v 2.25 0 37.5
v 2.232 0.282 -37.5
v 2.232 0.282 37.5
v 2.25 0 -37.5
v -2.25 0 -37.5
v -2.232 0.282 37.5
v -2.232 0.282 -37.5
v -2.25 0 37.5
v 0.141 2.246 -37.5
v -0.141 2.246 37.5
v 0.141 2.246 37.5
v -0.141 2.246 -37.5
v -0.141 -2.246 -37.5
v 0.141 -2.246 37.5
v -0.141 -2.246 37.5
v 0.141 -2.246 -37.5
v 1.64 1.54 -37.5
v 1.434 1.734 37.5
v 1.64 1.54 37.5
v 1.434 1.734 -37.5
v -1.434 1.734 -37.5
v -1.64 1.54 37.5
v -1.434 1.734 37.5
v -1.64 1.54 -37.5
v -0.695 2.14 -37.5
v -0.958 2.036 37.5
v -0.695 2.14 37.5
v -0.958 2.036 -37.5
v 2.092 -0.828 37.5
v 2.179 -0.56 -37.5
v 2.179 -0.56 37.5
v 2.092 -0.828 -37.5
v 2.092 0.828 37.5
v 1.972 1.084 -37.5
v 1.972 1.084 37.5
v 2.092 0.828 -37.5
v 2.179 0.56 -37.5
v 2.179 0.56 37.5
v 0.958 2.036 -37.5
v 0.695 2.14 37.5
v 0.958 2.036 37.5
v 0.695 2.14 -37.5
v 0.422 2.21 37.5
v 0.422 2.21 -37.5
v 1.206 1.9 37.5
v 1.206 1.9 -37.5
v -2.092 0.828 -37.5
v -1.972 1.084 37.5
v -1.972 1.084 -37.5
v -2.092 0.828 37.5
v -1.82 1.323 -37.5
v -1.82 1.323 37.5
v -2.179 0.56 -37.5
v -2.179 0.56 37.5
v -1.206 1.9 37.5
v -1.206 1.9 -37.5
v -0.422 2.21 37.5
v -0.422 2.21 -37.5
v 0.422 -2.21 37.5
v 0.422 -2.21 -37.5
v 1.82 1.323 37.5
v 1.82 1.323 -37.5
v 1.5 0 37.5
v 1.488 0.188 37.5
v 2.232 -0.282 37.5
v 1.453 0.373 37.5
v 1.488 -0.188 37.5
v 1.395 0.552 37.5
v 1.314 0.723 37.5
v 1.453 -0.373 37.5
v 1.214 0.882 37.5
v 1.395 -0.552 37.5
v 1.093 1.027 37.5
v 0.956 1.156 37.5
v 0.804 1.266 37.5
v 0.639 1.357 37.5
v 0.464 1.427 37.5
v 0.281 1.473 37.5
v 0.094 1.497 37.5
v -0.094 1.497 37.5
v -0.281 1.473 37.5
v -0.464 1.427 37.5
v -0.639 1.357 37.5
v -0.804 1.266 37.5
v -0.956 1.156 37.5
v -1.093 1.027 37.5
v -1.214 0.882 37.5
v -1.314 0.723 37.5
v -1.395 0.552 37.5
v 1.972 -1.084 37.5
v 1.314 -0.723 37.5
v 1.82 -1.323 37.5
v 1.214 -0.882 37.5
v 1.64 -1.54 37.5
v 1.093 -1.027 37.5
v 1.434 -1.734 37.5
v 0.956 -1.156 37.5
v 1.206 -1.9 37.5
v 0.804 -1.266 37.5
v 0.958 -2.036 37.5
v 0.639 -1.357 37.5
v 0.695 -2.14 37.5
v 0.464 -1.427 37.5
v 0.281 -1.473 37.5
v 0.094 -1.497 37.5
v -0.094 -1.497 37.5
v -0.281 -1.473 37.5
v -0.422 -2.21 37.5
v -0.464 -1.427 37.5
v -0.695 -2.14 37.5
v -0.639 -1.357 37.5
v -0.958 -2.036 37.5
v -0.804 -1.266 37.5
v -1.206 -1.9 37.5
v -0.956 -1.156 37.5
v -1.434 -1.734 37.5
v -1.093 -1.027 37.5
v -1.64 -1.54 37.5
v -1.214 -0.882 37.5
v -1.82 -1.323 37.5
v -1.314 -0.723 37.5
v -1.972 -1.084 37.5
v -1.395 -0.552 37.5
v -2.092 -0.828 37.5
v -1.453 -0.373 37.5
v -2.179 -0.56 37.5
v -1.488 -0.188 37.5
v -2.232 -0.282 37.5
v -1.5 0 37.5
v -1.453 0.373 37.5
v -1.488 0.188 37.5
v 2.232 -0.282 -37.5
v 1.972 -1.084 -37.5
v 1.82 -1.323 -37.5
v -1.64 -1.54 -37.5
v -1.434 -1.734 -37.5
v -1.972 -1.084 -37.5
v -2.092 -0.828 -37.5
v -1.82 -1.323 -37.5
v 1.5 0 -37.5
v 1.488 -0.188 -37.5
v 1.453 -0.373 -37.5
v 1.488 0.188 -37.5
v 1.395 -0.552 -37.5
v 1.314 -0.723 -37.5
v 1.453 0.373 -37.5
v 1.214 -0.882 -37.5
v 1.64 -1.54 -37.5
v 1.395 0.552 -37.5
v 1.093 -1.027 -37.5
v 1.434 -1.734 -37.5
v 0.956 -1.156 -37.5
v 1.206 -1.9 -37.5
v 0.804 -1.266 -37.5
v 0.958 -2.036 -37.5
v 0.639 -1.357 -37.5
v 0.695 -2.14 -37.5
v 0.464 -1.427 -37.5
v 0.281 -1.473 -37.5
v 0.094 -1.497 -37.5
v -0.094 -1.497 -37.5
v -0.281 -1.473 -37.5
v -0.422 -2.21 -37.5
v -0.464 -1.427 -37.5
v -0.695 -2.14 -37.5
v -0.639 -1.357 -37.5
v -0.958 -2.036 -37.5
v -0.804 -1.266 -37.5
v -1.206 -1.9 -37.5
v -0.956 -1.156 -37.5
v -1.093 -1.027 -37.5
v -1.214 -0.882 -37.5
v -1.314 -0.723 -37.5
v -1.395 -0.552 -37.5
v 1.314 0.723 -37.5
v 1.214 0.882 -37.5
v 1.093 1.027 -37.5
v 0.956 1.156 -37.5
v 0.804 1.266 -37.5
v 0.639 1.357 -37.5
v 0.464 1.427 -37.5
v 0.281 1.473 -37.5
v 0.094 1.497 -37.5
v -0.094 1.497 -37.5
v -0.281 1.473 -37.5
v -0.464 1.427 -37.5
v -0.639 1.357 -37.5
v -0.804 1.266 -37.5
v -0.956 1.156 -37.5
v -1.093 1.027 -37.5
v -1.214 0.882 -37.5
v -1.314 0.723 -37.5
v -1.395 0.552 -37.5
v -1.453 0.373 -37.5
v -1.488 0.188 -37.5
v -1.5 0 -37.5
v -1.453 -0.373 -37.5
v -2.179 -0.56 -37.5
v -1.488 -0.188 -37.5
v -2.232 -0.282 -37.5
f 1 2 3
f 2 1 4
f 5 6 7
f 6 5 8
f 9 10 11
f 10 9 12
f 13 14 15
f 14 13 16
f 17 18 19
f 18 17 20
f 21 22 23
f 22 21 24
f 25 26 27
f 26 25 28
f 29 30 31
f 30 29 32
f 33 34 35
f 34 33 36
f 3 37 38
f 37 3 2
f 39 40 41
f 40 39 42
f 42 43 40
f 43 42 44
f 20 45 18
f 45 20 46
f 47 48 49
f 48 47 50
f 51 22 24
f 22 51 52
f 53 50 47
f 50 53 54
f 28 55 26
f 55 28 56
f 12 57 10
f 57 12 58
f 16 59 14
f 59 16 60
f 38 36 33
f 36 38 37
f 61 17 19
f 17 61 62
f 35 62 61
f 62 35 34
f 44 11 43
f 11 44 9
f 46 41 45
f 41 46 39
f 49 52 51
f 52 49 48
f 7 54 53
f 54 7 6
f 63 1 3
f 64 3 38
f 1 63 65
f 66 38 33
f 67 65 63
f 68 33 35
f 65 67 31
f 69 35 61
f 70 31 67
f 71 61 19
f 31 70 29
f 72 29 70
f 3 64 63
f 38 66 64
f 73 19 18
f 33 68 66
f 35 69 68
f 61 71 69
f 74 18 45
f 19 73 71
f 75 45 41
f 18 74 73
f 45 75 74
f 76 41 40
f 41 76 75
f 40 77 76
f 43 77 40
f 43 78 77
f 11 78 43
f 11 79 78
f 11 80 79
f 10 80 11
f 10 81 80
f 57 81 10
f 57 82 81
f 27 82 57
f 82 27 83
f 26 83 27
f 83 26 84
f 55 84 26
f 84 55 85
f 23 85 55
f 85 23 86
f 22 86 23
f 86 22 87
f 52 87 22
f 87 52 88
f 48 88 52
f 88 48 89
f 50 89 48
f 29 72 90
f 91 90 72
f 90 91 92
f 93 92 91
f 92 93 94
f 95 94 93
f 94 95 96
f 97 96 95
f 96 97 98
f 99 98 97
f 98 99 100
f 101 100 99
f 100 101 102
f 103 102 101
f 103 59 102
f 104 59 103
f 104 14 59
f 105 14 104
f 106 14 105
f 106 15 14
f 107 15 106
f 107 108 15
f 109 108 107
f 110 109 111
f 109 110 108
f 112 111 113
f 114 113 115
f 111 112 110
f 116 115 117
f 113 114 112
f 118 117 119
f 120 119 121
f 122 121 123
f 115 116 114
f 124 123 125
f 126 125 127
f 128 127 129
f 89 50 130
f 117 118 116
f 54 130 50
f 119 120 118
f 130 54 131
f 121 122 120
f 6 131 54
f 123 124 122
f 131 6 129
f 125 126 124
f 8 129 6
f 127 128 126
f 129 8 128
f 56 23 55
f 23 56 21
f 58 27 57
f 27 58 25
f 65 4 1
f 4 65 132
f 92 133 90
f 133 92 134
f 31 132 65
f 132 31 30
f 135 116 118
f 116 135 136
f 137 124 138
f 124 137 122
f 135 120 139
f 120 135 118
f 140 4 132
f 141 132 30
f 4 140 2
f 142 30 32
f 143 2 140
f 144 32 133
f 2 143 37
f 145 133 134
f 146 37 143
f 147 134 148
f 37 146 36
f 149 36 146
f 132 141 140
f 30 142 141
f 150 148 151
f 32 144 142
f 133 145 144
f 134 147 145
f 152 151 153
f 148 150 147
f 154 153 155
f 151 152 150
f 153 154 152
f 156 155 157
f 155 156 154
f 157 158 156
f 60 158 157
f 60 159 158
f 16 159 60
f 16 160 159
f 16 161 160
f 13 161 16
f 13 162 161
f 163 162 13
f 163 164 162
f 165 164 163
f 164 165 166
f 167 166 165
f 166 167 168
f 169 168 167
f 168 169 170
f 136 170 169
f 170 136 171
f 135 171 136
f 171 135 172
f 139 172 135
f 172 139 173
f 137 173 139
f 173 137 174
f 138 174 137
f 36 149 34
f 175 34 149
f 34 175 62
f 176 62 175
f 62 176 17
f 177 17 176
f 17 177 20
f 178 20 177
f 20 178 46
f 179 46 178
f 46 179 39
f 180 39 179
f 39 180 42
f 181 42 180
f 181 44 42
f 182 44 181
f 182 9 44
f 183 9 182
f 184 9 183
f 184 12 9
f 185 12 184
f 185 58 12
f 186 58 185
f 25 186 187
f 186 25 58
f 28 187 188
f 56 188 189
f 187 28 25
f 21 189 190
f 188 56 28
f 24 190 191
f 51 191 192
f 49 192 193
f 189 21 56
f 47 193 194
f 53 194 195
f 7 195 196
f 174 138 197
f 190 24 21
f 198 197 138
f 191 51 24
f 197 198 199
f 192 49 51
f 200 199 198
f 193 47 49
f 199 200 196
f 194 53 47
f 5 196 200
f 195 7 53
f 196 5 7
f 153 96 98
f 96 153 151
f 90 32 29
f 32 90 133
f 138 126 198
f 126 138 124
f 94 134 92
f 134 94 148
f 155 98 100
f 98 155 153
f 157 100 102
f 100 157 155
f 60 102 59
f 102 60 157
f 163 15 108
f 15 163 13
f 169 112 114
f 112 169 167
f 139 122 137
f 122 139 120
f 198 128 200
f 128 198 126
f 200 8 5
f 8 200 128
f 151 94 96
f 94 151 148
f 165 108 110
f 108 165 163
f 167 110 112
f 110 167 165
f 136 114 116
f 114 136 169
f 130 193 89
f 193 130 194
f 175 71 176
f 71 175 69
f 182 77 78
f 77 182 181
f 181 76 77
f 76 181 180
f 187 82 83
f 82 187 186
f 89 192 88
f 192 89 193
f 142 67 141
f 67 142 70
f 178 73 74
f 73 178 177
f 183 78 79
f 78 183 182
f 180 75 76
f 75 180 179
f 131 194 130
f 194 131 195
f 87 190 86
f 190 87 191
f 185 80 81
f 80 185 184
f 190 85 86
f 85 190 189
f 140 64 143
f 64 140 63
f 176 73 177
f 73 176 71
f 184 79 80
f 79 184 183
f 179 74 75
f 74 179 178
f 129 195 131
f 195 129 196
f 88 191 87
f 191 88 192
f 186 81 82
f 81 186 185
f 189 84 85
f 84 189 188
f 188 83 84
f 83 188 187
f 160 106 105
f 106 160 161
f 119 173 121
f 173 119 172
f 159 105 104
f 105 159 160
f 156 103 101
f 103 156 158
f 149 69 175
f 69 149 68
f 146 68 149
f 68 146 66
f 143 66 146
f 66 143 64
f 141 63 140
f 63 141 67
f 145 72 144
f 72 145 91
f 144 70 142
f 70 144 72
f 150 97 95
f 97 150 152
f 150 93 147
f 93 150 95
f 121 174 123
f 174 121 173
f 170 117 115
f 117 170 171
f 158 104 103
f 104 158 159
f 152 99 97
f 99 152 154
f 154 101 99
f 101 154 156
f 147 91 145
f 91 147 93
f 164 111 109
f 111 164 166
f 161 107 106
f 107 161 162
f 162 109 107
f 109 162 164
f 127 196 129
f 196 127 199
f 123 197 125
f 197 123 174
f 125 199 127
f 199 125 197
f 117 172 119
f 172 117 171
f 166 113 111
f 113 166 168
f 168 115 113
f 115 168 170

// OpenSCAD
$fn = 50;


difference() {
	union() {
		translate(v = [0, 0, -37.5000000000]) {
			cylinder(h = 75, r = 2.2500000000);
		}
	}
	union() {
		translate(v = [0, 0, -100.0000000000]) {
			cylinder(h = 200, r = 1.5000000000);
		}
	}
}
